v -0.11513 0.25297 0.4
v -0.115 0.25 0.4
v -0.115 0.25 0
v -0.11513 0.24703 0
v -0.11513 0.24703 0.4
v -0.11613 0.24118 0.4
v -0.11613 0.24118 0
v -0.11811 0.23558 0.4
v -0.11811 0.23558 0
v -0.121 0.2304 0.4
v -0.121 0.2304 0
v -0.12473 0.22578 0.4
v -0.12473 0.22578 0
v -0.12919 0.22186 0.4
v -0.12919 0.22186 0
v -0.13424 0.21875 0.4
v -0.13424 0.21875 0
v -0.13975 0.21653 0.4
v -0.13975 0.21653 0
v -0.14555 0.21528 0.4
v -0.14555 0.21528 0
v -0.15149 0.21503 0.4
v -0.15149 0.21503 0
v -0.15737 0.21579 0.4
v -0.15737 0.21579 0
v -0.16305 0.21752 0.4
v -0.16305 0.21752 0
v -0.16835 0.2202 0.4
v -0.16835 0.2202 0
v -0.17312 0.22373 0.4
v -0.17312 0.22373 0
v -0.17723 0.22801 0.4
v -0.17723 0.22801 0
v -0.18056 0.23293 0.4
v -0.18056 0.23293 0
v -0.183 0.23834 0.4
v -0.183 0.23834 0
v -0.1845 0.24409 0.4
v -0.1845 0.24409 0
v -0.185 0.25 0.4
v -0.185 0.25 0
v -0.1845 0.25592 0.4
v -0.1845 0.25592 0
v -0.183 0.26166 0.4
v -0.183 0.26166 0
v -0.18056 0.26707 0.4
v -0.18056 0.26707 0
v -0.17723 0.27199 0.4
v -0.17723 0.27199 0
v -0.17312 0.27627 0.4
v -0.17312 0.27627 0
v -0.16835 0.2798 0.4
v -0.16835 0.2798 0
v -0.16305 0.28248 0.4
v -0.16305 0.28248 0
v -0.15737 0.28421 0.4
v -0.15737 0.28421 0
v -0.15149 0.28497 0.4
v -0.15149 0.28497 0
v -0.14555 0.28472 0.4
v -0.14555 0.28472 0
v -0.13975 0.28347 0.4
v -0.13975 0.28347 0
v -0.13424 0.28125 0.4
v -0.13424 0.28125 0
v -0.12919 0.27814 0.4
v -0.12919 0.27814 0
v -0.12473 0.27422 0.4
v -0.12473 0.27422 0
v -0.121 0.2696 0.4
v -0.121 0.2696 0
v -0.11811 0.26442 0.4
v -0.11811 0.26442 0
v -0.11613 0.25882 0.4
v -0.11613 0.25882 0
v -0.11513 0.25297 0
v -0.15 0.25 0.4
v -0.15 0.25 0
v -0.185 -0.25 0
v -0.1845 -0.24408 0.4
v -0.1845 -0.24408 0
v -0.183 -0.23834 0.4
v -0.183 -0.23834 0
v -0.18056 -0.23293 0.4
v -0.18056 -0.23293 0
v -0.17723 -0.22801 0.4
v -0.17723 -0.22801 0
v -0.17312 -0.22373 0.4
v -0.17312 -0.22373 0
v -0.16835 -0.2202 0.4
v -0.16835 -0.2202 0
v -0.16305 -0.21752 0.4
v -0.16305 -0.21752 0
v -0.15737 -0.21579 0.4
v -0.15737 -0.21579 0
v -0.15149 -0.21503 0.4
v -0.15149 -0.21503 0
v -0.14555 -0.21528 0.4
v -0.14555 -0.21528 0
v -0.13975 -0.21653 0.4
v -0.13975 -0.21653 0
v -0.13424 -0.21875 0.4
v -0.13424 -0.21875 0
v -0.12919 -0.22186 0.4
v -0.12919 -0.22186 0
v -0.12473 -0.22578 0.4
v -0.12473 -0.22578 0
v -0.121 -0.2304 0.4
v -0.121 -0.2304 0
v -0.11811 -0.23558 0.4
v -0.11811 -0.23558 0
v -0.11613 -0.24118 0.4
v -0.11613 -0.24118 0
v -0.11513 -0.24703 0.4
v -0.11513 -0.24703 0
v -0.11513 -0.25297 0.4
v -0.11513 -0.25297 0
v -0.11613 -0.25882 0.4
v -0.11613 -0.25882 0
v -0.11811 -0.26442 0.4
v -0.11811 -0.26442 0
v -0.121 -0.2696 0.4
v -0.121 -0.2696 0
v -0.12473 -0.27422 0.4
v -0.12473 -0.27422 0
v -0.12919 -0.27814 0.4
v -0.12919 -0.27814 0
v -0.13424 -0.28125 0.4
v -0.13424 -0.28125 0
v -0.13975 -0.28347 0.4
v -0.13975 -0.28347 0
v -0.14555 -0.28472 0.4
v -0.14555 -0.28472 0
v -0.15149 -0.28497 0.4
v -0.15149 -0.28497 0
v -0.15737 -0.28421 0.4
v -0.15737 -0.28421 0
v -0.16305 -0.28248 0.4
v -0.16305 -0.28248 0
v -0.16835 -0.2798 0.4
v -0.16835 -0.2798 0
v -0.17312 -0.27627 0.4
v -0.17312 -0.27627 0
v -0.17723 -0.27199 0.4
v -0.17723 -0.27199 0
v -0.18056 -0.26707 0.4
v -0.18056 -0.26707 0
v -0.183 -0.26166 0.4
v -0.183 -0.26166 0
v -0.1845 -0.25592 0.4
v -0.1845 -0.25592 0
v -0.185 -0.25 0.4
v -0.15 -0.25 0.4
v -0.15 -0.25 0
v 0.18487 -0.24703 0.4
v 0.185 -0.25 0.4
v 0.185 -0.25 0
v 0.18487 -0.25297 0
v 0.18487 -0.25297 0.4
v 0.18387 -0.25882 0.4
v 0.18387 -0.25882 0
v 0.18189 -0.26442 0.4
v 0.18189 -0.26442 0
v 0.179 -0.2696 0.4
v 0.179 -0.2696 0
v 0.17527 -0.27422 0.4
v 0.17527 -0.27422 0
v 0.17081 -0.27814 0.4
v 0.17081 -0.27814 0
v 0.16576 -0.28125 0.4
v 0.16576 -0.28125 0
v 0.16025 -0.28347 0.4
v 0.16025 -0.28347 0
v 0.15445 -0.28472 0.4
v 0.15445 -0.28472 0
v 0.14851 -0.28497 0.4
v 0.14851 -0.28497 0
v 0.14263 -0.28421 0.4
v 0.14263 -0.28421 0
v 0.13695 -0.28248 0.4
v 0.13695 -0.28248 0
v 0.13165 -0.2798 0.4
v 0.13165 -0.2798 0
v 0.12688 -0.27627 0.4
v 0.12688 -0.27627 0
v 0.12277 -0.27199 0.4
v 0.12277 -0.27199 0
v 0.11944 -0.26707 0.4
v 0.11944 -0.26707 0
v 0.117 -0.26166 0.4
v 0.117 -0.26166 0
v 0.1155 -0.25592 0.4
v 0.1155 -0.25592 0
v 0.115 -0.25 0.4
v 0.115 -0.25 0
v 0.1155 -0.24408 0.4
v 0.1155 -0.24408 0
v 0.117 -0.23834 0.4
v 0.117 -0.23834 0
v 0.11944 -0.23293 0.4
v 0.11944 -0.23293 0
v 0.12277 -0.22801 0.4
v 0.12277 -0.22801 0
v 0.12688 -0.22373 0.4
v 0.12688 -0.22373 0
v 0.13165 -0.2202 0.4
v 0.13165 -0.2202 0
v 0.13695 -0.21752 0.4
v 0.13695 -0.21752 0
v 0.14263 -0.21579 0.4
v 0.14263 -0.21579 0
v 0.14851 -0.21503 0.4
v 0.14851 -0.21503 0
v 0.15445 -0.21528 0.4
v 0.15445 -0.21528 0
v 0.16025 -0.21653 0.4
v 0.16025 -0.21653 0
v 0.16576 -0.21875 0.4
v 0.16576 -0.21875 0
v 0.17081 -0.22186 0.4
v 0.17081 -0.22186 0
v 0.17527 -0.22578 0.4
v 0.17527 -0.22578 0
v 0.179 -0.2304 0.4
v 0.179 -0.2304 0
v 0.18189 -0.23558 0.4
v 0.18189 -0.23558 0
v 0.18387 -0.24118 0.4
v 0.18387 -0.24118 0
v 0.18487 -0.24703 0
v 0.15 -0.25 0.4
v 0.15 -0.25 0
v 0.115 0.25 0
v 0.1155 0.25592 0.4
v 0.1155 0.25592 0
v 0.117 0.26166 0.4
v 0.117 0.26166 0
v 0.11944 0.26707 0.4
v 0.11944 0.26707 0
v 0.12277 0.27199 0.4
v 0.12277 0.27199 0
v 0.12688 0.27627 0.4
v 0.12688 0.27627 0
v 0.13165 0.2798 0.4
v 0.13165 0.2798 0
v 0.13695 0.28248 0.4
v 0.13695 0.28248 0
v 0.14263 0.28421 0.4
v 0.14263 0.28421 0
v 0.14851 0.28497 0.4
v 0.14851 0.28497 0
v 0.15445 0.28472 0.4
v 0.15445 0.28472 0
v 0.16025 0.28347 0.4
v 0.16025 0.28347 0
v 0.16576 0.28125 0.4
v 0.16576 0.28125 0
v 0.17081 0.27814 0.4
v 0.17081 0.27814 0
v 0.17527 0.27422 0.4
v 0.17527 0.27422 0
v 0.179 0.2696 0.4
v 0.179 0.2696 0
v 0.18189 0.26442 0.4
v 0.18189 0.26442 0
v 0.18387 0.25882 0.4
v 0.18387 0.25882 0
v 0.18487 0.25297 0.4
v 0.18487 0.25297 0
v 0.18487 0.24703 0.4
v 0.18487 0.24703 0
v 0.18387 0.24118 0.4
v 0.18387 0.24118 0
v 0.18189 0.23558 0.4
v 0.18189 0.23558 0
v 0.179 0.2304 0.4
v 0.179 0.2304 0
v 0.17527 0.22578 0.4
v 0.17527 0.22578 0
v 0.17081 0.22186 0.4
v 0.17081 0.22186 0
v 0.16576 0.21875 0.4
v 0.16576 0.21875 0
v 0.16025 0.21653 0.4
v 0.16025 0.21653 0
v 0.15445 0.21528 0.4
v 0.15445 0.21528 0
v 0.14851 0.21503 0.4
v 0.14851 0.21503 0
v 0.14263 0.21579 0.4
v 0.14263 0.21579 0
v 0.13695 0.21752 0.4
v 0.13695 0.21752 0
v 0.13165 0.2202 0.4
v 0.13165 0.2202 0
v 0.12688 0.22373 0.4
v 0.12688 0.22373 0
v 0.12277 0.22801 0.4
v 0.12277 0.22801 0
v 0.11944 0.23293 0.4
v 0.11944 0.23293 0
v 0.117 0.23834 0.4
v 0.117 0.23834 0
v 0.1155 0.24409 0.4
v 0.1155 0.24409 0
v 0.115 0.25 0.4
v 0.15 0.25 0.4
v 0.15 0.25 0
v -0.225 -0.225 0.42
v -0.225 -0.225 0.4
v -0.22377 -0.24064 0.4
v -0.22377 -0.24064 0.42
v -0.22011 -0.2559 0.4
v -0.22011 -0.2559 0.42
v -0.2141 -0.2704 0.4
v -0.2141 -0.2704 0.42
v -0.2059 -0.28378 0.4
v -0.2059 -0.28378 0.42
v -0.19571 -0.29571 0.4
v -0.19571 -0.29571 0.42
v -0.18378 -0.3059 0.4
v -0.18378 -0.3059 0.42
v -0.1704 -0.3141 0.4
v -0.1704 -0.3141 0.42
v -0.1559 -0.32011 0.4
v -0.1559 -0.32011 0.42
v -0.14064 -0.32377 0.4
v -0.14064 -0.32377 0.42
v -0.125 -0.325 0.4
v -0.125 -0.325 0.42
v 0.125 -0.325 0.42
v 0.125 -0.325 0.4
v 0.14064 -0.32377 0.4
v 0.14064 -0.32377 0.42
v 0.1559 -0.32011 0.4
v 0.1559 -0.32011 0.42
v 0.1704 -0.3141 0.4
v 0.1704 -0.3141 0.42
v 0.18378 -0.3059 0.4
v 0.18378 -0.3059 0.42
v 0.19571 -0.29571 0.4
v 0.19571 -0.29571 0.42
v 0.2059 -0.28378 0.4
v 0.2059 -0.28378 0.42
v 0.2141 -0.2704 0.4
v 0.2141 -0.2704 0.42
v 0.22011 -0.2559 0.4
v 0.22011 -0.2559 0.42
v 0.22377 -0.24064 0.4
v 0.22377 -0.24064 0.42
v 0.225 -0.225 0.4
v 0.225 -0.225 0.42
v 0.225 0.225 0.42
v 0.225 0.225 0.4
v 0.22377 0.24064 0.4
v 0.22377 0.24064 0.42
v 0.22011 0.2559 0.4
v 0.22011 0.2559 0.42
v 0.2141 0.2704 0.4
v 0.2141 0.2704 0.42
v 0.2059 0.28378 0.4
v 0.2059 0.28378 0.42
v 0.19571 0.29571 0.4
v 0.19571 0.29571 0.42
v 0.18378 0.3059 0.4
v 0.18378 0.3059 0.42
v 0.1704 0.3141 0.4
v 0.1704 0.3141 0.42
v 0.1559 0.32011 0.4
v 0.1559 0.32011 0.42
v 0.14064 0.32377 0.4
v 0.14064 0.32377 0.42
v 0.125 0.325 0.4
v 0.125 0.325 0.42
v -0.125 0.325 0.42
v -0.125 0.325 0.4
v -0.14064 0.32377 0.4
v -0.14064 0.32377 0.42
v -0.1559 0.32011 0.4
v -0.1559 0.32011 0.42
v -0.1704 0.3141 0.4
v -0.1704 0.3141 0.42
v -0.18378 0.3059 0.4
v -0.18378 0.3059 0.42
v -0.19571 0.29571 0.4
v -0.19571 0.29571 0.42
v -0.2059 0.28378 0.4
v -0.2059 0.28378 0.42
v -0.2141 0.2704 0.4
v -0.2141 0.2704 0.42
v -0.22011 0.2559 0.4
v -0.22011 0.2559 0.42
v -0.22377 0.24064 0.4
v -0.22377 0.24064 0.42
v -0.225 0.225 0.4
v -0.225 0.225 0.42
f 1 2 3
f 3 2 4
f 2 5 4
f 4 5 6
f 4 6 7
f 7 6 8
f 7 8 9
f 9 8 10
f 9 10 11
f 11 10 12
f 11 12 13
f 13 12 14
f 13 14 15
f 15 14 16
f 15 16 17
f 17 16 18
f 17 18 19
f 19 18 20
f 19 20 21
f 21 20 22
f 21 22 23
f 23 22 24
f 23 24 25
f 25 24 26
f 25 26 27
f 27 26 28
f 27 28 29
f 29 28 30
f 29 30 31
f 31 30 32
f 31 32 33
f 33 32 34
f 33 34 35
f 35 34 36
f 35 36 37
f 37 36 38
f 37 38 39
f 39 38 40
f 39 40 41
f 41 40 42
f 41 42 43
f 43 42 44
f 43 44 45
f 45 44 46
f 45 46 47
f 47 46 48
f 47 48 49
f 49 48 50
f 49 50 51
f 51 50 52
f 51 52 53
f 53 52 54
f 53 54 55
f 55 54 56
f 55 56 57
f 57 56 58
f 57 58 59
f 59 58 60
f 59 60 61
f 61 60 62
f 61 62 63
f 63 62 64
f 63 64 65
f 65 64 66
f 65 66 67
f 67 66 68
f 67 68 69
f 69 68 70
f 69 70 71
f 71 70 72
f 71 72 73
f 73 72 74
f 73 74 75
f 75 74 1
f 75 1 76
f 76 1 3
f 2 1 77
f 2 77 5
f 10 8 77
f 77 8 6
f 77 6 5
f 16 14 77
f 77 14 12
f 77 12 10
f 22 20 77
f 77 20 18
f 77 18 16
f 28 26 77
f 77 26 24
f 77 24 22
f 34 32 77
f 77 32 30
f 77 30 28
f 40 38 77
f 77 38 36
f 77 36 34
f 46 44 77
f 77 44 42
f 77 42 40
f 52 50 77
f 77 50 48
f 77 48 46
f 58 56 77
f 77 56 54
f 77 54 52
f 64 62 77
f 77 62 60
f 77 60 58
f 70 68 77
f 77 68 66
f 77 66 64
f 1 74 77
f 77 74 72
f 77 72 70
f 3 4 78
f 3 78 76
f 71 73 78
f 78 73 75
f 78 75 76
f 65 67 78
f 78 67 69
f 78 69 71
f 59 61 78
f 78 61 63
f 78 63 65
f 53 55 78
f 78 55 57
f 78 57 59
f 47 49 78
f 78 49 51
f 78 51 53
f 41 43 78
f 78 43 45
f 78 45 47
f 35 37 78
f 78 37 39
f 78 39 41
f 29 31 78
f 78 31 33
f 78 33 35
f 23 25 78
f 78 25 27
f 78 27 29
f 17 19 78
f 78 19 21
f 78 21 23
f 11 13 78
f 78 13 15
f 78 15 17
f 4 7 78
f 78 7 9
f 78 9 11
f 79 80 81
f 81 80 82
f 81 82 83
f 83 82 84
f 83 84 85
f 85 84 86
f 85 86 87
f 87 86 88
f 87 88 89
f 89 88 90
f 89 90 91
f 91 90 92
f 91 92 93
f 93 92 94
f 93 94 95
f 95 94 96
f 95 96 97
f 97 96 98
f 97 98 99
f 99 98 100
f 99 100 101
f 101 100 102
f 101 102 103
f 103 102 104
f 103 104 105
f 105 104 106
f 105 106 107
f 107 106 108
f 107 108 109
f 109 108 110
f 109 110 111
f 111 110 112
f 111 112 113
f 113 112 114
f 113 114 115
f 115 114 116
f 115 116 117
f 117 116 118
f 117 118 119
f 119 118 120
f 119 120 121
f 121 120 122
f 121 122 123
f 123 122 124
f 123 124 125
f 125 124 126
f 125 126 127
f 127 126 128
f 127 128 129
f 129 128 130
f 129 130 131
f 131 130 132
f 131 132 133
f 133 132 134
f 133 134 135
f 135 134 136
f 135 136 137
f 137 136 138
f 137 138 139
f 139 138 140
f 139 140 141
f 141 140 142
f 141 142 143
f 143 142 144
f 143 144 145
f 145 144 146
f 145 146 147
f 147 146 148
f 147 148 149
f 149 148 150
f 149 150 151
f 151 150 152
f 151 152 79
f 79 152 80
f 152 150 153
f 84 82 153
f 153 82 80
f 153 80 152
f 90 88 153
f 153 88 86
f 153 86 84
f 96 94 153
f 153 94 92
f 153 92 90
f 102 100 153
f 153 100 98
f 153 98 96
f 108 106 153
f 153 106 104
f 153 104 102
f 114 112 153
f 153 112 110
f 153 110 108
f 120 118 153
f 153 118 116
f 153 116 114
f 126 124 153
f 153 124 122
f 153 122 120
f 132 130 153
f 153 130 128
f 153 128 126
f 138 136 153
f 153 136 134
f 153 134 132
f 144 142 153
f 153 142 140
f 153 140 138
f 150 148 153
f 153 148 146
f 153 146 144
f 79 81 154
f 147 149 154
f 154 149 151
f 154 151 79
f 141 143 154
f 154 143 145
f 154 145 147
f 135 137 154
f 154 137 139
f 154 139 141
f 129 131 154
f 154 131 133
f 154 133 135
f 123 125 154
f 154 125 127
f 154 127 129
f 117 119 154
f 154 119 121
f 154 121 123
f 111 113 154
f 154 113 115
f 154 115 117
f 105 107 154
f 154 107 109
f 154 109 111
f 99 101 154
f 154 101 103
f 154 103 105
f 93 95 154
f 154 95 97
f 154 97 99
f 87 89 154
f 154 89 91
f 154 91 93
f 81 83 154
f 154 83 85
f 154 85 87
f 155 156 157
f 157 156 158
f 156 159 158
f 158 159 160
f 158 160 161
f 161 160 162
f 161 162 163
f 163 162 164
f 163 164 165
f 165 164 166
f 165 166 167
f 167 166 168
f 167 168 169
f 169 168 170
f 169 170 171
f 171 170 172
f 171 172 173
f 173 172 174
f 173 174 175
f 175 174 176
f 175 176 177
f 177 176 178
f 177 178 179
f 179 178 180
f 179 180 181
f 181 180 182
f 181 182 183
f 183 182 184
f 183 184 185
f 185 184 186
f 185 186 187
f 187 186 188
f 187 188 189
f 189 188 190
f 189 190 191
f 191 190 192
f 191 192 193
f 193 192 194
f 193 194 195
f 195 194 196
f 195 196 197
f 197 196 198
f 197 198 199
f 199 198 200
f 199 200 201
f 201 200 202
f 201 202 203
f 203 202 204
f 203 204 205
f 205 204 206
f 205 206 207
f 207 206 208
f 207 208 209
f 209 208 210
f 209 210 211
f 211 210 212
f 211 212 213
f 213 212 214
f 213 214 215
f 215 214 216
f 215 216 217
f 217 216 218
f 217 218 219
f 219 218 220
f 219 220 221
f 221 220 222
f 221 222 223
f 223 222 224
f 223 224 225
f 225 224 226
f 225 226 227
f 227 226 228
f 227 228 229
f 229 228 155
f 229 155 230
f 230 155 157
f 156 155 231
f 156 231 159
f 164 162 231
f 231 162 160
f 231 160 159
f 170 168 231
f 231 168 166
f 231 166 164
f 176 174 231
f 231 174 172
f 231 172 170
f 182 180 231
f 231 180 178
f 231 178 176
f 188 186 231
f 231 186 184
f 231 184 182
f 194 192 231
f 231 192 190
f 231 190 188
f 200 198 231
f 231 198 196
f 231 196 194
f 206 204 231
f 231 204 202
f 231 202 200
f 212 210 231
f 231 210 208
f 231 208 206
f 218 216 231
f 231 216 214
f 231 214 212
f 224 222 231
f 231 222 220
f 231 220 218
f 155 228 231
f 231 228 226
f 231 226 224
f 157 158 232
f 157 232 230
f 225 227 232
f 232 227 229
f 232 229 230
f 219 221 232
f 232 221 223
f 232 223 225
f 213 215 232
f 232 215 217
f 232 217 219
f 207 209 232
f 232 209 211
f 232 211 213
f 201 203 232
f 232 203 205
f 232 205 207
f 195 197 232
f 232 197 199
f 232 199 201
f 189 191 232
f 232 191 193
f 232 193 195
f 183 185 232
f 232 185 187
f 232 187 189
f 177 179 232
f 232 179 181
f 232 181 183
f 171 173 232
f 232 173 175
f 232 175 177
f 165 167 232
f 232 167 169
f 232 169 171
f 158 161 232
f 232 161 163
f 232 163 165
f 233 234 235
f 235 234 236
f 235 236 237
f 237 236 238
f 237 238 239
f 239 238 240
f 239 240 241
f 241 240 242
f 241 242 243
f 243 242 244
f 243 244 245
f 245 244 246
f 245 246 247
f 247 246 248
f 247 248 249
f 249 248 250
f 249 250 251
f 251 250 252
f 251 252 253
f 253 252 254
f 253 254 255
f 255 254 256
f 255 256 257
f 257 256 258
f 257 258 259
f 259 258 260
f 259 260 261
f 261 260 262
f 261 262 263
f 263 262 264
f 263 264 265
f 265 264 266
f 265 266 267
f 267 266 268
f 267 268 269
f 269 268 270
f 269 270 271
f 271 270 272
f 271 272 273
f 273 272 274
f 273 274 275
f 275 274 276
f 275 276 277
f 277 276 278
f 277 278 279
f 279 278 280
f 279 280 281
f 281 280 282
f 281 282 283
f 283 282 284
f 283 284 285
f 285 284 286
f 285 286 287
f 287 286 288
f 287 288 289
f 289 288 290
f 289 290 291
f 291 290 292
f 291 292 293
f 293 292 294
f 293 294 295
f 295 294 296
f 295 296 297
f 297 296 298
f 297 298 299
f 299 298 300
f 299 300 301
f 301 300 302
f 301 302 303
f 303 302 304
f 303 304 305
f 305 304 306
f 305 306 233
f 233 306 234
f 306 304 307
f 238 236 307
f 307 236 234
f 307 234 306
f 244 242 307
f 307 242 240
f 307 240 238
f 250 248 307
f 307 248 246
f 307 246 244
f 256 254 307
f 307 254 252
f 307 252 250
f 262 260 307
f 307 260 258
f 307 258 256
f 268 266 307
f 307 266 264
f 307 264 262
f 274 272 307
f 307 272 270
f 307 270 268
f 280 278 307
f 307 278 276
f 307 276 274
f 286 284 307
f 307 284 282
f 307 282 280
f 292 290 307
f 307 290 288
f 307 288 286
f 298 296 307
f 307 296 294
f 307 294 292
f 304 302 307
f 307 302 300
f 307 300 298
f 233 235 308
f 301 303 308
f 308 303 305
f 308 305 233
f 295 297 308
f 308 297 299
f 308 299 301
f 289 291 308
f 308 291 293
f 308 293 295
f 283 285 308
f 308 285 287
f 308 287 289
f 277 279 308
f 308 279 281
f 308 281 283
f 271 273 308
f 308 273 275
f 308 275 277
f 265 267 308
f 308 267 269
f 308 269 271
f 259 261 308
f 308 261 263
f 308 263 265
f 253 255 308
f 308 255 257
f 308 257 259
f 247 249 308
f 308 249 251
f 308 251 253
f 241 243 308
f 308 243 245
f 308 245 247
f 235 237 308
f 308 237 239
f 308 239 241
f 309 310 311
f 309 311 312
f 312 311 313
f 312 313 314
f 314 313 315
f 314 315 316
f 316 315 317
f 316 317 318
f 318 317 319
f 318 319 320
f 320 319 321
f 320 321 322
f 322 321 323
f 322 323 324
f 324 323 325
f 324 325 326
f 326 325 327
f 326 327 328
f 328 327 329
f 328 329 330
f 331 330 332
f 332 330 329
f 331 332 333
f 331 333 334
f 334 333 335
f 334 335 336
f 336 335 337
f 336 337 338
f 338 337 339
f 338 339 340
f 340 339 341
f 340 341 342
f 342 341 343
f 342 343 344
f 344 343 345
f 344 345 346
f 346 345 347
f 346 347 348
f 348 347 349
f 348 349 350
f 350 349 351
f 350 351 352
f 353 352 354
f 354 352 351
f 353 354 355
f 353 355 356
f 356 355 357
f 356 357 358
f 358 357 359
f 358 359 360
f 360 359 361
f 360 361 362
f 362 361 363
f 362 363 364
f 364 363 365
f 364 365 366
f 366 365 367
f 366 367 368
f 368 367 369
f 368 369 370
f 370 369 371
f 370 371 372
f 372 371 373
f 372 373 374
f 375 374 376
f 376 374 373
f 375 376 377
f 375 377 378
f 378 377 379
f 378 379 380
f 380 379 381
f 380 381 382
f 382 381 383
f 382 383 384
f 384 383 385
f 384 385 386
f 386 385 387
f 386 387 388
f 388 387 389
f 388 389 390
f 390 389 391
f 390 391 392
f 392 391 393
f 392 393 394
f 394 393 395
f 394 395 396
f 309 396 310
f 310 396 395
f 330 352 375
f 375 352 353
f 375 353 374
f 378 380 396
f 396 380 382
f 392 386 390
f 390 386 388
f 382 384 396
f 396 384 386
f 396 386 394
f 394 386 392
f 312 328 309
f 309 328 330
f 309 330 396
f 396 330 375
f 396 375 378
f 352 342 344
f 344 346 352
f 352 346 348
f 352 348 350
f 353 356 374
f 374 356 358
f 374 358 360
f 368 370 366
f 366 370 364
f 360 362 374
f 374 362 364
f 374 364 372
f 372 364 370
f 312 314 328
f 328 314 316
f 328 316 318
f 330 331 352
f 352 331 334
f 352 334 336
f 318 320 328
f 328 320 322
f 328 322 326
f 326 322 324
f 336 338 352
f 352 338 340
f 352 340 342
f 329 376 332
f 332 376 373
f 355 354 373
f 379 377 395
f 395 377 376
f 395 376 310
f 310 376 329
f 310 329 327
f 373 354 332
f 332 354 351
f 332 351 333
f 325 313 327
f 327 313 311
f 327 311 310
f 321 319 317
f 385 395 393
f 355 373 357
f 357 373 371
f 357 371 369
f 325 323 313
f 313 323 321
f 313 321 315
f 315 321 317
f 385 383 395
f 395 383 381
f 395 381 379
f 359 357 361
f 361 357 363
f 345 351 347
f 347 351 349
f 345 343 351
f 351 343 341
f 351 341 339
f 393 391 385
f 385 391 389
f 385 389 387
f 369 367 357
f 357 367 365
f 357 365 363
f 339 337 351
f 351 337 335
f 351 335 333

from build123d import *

# Parameters (mm, degrees)
SKETCH1_R             = 0.035
BOSS_EXTRUDE1_DEPTH   = 0.4
BOSS_EXTRUDE1_2_DEPTH = 0.4
BOSS_EXTRUDE1_3_DEPTH = 0.4
BOSS_EXTRUDE1_4_DEPTH = 0.4
BOSS_EXTRUDE2_DEPTH   = 0.02


with BuildPart() as part:
    # Sketch1 → Boss-Extrude1 (new body)
    with BuildSketch(Plane.XY):
        with Locations((-0.15, 0.25)):
            Circle(SKETCH1_R)
    extrude(amount=BOSS_EXTRUDE1_DEPTH)


with BuildPart() as body_2:
    # Sketch1 → Boss-Extrude1 2 (new body)
    with BuildSketch(Plane.XY):
        with Locations((-0.15, -0.25)):
            Circle(SKETCH1_R)
    extrude(amount=BOSS_EXTRUDE1_2_DEPTH)


with BuildPart() as body_3:
    # Sketch1 → Boss-Extrude1 3 (new body)
    with BuildSketch(Plane.XY):
        with Locations((0.15, -0.25)):
            Circle(SKETCH1_R)
    extrude(amount=BOSS_EXTRUDE1_3_DEPTH)


with BuildPart() as body_4:
    # Sketch1 → Boss-Extrude1 4 (new body)
    with BuildSketch(Plane.XY):
        with Locations((0.15, 0.25)):
            Circle(SKETCH1_R)
    extrude(amount=BOSS_EXTRUDE1_4_DEPTH)


with BuildPart() as body_5:
    # Sketch2 → Boss-Extrude2 (new body)
    with BuildSketch(Plane.XY.offset(0.4)):
        with BuildLine():
            Line((-0.125, -0.325), (0.125, -0.325))
            ThreePointArc((0.125, -0.325), (0.195710678, -0.295710678), (0.225, -0.225))
            Line((0.225, -0.225), (0.225, 0.225))
            ThreePointArc((0.225, 0.225), (0.195710678, 0.295710678), (0.125, 0.325))
            Line((0.125, 0.325), (-0.125, 0.325))
            ThreePointArc((-0.125, 0.325), (-0.195710678, 0.295710678), (-0.225, 0.225))
            Line((-0.225, 0.225), (-0.225, -0.225))
            ThreePointArc((-0.225, -0.225), (-0.195710678, -0.295710678), (-0.125, -0.325))
        make_face()
    extrude(amount=BOSS_EXTRUDE2_DEPTH)


solid = Compound([part.part, body_2.part, body_3.part, body_4.part, body_5.part])
